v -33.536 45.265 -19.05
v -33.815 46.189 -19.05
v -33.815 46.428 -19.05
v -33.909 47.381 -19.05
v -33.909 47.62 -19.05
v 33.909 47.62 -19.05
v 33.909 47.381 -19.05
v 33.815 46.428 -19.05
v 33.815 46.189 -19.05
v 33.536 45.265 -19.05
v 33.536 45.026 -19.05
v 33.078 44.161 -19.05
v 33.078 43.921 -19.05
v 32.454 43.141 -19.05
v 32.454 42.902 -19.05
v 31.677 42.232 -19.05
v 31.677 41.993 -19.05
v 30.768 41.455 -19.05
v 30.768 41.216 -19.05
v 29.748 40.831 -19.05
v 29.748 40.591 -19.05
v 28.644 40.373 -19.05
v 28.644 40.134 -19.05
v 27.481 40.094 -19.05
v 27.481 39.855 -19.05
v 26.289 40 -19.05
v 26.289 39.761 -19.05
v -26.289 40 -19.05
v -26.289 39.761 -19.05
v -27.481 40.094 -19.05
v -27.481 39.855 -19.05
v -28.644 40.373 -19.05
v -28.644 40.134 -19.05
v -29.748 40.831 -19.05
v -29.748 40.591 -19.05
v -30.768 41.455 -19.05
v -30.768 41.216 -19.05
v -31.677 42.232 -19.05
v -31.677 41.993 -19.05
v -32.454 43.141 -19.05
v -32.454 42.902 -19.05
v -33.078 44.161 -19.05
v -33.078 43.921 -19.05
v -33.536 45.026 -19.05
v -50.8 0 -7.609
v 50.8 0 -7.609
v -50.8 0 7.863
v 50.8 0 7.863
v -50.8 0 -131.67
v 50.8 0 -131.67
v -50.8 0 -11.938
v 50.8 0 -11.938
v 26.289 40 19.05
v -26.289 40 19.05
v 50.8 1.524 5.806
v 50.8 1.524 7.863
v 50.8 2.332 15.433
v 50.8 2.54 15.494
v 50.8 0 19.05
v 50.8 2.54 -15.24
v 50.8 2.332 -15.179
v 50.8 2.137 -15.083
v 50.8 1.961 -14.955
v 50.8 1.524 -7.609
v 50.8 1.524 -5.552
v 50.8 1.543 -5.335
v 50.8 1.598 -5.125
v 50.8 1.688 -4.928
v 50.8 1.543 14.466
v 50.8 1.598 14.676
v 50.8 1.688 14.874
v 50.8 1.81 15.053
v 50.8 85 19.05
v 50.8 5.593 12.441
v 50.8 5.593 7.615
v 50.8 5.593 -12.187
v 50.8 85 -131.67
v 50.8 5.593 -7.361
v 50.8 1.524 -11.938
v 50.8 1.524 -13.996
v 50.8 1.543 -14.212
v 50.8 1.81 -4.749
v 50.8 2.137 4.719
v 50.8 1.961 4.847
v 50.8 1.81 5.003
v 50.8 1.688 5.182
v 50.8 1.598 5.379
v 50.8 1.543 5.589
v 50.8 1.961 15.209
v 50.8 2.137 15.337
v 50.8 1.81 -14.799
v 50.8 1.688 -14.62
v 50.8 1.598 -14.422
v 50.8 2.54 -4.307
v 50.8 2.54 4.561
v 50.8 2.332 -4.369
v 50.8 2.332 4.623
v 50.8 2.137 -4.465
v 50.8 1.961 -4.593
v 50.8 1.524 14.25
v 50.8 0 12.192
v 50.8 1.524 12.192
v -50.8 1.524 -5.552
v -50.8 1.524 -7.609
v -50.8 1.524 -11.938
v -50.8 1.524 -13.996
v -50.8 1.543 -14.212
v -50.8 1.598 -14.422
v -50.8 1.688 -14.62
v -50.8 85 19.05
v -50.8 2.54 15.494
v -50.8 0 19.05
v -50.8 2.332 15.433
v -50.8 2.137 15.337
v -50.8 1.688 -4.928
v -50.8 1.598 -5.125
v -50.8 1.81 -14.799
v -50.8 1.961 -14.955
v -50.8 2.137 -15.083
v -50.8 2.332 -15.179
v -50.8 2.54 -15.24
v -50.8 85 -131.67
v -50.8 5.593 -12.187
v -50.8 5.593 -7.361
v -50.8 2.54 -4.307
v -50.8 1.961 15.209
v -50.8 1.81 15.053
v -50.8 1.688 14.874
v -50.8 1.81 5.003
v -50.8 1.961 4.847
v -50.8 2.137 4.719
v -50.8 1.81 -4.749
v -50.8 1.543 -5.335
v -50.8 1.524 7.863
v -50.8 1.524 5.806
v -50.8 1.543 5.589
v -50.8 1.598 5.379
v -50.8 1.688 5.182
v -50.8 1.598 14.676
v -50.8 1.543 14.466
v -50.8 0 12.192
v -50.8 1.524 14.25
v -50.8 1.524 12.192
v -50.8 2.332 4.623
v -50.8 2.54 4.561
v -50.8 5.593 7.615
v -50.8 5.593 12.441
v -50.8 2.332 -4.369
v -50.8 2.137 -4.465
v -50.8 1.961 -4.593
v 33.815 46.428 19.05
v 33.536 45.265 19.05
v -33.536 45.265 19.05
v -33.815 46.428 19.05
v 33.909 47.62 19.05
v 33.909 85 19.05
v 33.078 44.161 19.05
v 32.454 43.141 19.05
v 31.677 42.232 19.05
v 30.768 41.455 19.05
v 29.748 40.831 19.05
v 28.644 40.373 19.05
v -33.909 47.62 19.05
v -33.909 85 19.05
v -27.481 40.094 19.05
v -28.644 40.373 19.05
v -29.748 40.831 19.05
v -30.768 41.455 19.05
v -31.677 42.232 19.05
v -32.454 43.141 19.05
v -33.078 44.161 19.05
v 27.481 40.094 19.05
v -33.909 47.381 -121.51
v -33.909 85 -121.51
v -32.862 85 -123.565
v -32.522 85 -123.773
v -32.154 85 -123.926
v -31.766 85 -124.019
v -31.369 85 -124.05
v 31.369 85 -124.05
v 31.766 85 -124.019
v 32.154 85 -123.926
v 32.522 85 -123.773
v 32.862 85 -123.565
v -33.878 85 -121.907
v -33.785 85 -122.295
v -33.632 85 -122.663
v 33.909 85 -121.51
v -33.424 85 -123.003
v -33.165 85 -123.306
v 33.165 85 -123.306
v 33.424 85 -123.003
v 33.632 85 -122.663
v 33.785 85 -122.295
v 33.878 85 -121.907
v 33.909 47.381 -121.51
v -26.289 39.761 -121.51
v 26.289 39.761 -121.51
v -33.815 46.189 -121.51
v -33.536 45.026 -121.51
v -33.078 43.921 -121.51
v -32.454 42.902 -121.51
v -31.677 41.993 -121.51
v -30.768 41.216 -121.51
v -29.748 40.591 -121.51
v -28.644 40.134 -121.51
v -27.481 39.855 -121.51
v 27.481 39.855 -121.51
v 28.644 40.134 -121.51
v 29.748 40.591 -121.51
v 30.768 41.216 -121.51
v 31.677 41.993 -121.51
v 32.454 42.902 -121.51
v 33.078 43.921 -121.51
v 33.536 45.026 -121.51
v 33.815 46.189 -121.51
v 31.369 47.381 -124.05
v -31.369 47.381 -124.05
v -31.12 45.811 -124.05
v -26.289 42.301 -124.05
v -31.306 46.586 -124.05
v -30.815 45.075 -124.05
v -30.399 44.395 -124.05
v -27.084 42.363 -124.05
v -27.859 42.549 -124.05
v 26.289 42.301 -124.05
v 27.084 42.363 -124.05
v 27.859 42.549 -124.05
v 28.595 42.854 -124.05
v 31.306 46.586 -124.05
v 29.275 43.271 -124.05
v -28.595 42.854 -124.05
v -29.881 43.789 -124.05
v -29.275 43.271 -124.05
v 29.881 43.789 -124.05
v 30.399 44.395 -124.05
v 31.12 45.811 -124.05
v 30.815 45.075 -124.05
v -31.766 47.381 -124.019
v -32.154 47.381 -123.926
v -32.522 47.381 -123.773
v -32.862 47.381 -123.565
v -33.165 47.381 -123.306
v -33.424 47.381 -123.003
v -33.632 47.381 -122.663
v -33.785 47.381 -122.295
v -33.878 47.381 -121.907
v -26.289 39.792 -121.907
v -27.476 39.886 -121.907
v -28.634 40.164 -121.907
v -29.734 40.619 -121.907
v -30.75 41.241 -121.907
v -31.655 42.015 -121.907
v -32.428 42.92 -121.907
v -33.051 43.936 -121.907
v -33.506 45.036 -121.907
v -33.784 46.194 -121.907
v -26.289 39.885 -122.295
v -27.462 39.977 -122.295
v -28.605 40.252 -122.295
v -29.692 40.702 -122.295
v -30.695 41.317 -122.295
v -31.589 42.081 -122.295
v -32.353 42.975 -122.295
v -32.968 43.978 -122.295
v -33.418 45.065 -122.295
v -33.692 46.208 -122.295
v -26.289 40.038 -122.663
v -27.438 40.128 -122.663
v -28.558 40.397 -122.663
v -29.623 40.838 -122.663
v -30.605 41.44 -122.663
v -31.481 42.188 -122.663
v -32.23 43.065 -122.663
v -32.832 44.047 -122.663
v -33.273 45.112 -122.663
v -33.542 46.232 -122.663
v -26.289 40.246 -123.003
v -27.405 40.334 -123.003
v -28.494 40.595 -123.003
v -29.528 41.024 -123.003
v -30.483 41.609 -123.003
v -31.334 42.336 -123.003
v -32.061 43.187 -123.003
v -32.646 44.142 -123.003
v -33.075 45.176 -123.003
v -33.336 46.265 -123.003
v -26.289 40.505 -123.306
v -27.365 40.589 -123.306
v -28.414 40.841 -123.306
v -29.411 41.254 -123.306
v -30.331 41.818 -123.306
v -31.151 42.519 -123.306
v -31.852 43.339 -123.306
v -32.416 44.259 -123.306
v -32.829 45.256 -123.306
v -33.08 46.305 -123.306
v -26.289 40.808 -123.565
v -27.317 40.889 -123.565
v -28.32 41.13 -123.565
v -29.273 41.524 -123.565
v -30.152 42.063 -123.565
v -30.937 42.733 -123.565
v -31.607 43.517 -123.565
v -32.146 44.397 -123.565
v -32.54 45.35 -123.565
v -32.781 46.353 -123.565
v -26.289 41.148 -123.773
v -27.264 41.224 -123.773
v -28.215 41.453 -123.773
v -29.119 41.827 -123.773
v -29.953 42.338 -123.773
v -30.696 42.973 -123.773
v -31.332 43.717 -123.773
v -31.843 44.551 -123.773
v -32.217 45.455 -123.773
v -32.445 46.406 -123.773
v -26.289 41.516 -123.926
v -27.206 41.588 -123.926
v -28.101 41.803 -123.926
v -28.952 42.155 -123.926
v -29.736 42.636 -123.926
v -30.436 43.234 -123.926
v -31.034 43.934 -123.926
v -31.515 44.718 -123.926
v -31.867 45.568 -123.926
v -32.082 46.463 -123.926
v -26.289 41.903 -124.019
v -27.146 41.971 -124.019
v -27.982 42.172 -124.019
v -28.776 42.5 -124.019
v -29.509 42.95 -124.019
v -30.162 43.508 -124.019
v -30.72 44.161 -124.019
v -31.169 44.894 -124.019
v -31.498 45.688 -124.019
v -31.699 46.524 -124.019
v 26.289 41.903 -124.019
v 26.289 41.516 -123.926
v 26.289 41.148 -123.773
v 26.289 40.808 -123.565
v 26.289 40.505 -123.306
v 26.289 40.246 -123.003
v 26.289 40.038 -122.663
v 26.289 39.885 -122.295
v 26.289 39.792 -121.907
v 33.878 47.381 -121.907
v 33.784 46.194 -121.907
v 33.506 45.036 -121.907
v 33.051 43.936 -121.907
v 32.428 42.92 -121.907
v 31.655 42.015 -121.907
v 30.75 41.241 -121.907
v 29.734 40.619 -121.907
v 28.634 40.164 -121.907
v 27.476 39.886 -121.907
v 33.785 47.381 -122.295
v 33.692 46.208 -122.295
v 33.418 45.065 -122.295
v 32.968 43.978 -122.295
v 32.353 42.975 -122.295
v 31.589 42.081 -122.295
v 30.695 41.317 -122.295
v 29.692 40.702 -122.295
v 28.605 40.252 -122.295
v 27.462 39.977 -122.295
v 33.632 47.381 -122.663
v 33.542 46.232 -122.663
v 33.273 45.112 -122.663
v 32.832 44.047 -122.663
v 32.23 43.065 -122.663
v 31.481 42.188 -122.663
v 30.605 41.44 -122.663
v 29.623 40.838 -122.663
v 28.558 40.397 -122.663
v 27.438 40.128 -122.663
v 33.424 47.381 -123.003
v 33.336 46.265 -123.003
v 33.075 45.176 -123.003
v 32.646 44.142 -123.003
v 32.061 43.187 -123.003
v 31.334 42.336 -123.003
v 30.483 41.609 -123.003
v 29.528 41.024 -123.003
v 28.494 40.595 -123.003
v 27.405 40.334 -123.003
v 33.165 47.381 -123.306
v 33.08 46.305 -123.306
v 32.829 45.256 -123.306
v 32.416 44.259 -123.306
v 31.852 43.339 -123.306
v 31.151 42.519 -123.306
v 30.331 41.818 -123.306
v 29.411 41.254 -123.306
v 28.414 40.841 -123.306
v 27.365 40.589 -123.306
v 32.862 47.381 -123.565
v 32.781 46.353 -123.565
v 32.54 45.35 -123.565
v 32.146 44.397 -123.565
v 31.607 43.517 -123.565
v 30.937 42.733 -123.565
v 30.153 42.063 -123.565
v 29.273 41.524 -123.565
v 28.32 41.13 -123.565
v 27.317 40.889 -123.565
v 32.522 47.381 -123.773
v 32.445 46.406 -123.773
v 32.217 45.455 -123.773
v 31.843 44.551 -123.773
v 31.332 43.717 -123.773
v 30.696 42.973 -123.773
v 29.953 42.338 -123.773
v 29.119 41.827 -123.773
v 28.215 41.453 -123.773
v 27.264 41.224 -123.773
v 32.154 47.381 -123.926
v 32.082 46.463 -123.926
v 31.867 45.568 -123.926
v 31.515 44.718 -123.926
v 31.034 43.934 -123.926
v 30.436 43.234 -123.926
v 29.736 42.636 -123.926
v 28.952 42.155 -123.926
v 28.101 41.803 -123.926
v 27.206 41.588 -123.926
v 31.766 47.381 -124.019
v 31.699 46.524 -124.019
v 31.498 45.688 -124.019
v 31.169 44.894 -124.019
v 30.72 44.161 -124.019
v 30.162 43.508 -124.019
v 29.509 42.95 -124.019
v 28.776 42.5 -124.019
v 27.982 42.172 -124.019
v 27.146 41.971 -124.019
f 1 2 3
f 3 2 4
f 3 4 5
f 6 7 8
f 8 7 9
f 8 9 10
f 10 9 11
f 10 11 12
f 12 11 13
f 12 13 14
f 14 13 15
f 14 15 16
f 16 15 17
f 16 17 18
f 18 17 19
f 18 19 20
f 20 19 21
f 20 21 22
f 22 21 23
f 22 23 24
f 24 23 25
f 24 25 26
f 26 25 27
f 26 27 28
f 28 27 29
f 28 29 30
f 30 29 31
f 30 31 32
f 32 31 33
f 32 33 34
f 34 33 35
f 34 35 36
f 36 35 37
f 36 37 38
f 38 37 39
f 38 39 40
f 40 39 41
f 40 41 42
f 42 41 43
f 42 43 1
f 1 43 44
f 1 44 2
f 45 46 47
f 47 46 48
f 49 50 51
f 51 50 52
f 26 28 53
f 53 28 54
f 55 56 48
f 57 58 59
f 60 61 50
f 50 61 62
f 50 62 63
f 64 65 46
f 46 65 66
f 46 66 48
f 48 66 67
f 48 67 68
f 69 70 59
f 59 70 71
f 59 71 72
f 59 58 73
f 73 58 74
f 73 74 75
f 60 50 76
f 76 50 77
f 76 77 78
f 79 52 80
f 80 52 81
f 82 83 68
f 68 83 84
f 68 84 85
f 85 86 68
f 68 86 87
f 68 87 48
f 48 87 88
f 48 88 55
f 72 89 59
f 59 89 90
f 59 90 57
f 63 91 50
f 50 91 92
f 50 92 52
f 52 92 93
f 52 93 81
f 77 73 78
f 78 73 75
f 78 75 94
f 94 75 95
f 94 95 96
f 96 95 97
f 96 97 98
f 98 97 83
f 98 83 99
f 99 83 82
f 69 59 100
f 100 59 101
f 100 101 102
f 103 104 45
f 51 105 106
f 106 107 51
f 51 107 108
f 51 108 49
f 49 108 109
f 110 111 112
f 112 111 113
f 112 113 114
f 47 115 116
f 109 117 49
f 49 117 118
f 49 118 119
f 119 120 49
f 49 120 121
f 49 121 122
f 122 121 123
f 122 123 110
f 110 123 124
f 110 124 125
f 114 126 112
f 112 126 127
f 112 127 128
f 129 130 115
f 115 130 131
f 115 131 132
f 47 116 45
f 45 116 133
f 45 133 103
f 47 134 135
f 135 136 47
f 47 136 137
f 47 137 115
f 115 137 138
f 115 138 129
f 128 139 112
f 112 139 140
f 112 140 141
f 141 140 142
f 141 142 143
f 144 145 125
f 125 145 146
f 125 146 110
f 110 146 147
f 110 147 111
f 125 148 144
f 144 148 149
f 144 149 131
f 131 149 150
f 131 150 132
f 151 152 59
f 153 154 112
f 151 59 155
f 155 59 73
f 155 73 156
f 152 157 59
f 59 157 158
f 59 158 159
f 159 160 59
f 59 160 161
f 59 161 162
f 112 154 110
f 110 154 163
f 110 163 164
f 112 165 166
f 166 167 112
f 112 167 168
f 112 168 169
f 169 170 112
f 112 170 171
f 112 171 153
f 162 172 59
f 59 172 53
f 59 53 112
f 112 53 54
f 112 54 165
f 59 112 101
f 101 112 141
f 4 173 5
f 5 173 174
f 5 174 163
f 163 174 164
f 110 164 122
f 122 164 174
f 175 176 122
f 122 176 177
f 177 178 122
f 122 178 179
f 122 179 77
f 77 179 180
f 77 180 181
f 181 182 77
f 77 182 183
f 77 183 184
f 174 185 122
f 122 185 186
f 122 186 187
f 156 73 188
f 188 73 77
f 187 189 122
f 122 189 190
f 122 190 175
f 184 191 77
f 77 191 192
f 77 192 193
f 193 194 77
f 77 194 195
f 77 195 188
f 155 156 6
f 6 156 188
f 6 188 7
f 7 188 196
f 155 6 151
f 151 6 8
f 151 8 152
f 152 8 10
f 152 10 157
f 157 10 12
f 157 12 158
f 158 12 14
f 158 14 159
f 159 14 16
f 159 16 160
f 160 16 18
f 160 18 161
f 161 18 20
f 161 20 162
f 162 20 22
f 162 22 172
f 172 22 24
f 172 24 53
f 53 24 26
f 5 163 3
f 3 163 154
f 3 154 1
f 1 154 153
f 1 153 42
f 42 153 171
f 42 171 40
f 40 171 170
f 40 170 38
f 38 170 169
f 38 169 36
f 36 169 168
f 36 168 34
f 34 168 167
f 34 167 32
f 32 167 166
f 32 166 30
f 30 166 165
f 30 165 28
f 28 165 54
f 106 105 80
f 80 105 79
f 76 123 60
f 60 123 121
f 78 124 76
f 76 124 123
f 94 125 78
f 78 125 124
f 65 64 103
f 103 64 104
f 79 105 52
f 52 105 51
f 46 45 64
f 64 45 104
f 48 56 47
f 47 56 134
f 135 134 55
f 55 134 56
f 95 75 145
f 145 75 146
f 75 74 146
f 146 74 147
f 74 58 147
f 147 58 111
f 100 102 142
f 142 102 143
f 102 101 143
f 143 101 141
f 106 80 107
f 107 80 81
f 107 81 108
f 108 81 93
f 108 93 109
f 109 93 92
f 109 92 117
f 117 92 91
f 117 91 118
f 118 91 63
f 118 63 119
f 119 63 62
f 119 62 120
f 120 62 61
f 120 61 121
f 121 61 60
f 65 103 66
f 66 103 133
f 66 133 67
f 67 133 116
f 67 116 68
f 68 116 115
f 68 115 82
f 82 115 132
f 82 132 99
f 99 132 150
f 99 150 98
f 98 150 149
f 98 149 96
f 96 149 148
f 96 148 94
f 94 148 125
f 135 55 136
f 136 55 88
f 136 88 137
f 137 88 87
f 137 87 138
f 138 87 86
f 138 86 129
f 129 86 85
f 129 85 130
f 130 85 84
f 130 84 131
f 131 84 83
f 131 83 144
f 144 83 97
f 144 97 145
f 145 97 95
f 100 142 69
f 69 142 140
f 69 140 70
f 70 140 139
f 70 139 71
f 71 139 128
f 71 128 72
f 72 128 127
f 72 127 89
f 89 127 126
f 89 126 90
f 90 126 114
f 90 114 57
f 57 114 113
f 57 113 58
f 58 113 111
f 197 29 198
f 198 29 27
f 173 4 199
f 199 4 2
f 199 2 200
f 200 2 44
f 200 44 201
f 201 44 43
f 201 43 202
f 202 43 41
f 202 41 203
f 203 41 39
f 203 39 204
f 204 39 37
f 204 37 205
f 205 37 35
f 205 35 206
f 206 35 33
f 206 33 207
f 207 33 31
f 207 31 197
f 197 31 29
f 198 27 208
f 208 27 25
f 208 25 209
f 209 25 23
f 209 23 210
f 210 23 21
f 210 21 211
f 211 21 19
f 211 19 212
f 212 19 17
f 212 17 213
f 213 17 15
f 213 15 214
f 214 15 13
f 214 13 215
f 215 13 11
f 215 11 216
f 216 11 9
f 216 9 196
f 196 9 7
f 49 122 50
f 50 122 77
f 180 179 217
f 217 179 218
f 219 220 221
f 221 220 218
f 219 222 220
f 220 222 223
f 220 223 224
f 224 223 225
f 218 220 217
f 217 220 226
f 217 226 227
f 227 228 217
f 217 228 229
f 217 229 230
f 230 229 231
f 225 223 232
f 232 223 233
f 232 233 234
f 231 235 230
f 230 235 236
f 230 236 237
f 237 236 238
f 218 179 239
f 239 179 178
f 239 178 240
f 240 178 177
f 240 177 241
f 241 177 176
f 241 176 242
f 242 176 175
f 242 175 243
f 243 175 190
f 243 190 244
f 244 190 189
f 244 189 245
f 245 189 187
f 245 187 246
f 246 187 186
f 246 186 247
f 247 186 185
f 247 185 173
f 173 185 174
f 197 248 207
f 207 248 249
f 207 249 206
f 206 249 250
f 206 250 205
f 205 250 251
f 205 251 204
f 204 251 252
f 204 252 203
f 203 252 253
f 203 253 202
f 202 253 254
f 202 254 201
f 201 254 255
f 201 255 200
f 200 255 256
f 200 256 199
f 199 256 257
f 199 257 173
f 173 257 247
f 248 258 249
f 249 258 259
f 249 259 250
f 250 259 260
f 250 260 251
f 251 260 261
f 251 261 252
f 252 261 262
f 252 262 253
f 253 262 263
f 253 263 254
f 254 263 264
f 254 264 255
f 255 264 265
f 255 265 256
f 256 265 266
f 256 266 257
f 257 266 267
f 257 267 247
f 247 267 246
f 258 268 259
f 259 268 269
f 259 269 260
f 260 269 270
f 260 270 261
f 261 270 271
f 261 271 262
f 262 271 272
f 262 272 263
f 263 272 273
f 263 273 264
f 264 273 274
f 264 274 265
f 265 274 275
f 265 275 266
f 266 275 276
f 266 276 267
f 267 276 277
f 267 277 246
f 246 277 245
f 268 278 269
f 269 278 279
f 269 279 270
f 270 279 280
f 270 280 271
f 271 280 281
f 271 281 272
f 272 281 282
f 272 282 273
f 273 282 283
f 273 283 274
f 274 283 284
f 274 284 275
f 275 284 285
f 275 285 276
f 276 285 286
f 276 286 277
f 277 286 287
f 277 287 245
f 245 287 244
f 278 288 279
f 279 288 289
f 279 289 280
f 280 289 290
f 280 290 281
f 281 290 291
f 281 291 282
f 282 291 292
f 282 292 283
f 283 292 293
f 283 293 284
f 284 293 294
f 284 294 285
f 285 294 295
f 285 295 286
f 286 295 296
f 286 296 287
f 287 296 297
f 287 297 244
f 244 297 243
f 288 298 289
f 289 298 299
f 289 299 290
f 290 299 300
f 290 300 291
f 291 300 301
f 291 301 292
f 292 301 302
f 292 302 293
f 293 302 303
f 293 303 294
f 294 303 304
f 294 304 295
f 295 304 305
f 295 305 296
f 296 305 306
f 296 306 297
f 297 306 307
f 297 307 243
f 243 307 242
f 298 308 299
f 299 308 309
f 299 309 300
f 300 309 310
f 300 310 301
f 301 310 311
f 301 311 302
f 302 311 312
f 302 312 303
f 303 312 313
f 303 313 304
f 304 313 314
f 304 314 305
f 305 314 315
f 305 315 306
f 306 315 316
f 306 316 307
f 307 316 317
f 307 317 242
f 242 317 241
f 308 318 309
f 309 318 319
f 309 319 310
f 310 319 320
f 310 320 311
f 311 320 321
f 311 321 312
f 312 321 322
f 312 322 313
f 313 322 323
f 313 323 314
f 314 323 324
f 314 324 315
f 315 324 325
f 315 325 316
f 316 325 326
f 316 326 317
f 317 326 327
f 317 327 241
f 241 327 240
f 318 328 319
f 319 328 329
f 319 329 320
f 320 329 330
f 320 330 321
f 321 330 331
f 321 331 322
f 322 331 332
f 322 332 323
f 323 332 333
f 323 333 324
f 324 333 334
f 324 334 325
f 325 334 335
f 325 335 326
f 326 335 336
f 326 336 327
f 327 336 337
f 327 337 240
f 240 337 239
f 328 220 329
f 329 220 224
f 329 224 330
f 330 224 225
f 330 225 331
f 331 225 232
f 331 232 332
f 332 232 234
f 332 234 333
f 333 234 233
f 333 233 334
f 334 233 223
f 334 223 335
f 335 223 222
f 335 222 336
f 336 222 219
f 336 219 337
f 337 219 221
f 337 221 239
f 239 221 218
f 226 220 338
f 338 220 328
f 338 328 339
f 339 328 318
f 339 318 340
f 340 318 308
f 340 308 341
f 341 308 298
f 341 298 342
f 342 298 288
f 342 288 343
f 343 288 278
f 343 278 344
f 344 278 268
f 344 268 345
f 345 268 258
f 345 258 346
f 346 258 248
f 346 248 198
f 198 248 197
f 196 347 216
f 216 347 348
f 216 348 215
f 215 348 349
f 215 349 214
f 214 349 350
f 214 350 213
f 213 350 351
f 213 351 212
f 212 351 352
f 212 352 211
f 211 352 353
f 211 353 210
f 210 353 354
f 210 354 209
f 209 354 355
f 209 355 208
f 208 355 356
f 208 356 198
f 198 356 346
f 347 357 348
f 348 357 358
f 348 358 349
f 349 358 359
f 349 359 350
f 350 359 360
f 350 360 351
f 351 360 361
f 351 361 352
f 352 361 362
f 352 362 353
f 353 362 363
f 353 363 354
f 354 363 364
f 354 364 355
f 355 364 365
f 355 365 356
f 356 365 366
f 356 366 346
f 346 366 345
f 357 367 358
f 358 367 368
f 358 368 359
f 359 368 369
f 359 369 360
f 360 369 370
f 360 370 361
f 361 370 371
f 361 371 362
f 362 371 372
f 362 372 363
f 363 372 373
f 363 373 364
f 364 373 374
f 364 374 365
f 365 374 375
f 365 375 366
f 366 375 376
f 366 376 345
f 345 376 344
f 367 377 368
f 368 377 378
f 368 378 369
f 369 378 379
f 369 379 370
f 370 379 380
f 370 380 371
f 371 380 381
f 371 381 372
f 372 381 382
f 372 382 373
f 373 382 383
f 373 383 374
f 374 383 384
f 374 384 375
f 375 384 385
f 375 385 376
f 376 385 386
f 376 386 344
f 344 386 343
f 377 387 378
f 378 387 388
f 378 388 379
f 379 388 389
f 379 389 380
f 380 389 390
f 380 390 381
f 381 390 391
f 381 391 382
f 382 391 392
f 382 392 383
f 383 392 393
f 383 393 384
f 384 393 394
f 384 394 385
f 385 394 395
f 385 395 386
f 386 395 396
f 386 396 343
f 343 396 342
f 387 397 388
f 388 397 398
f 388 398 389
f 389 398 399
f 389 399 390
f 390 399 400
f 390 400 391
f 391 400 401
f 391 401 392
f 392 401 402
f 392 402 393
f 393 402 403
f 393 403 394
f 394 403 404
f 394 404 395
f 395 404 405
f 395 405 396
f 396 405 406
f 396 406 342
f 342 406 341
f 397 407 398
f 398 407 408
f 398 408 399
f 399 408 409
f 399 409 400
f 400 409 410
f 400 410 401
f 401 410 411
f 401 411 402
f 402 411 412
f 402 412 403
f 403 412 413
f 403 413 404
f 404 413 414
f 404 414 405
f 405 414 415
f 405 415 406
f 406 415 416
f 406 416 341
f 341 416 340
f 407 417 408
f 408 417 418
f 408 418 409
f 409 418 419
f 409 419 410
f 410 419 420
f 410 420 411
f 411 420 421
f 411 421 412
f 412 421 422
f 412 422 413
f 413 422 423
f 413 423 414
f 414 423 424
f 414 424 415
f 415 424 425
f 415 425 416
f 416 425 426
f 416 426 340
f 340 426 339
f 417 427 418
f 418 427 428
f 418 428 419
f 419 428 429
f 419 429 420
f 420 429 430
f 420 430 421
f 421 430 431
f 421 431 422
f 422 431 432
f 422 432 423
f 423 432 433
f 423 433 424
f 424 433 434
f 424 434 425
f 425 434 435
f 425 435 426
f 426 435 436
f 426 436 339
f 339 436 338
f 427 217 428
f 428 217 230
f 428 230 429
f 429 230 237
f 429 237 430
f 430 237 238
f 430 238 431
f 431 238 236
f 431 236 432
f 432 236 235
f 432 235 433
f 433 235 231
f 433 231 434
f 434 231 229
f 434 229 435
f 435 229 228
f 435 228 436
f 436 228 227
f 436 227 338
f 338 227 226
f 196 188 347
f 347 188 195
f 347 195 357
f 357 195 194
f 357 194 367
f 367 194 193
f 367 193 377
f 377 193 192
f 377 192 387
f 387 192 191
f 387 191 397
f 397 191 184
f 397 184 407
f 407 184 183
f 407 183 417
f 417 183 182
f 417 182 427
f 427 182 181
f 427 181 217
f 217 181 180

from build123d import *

# Parameters (mm, degrees)
SKETCH1_W               = 101.6
SKETCH1_H               = 38.1
BOSS_EXTRUDE1_DEPTH     = 40
SKETCH2_W               = 16.891
SKETCH2_H               = 38.1
BOSS_EXTRUDE2_DEPTH     = 45
FILLET1_R               = 7.62
CUT_EXTRUDE1_DEPTH      = 134.829976089
CUT_EXTRUDE1_DEPTH_BACK = 134.829976089
CUT_EXTRUDE2_DEPTH      = 134.829976089
CUT_EXTRUDE2_DEPTH_BACK = 134.829976089
FILLET2_R               = 1.27
BOSS_EXTRUDE3_DEPTH     = 105
FILLET3_R               = 7.62
SKETCH9_W               = 101.6
SKETCH9_H               = 85
BOSS_EXTRUDE4_DEPTH     = 7.62
FILLET4_R               = 2.54


with BuildPart() as part:
    # Sketch1 → Boss-Extrude1 (new body)
    with BuildSketch(Plane(origin=(0, 0, 0), x_dir=(1, 0, 0), z_dir=(0, 1, 0))):
        Rectangle(SKETCH1_W, SKETCH1_H)
    extrude(amount=BOSS_EXTRUDE1_DEPTH)

    # Sketch2 → Boss-Extrude2 (add)
    with BuildSketch(Plane(origin=(0, 40, 0), x_dir=(1, 0, 0), z_dir=(0, 1, 0))):
        with Locations((-42.3545, 0)):
            Rectangle(SKETCH2_W, SKETCH2_H)
        with Locations((42.3545, 0)):
            Rectangle(SKETCH2_W, SKETCH2_H)
    extrude(amount=BOSS_EXTRUDE2_DEPTH)

    # Fillet1
    fillet1_edges = [part.edges().sort_by_distance(p)[0] for p in [
        (-33.909, 40, 0),
        (33.909, 40, 0),
    ]]
    fillet(fillet1_edges, radius=FILLET1_R)

    # Sketch6 → Cut-Extrude1 (cut, two sides: drawn at the far end of the back side and taken through both)
    with BuildSketch(Plane.ZY.offset(50.8).offset(-CUT_EXTRUDE1_DEPTH_BACK)):
        Polygon((-11.938, 0), (-11.938, 1.524), (-15.24, 1.524), (-15.24, 2.54), (-12.186712919, 5.593287081), (-7.360712919, 5.593287081), (-4.307425838, 2.54), (-4.307425838, 1.524), (-7.609425838, 1.524), (-7.609425838, 0), align=None)
    extrude(amount=CUT_EXTRUDE1_DEPTH + CUT_EXTRUDE1_DEPTH_BACK, mode=Mode.SUBTRACT)

    # Sketch5 → Cut-Extrude2 (cut, two sides: drawn at the far end of the back side and taken through both)
    with BuildSketch(Plane.ZY.offset(50.8).offset(-CUT_EXTRUDE2_DEPTH_BACK)):
        Polygon((7.863425838, 0), (7.863425838, 1.524), (4.561425838, 1.524), (4.561425838, 2.54), (7.614712919, 5.593287081), (12.440712919, 5.593287081), (15.494, 2.54), (15.494, 1.524), (12.192, 1.524), (12.192, 0), align=None)
    extrude(amount=CUT_EXTRUDE2_DEPTH + CUT_EXTRUDE2_DEPTH_BACK, mode=Mode.SUBTRACT)

    # Fillet2
    # the kernel refuses this fillet: 1.27 mm, written as the material it adds along each edge
    with BuildSketch(Plane(origin=(-50.8, 1.524, -15.24), x_dir=(0, 0, 1), z_dir=(1, 0, 0)), Plane(origin=(-50.8, 1.524, 4.561425838), x_dir=(0, 0, 1), z_dir=(1, 0, 0))) as fillet2_piece_1:
        with BuildLine():
            CenterArc((1.244340789, -1.27), FILLET2_R, 90, 78.463040967)
            Line((0, -1.016), (-0.024886816, -1.01092))
            ThreePointArc((-0.024886816, -1.01092), (-0.0254, -0.508), (-0.0254, 0))
            Line((-0.0254, 0), (0, 0.0254))
            Line((0, 0.0254), (1.244340789, 0.0254))
            Line((1.244340789, 0.0254), (1.244340789, 0))
        make_face()
    extrude(amount=101.6)
    with BuildSketch(Plane(origin=(-50.8, 1.524, -4.307425838), x_dir=(0, 1.0, -1.5744186357080854e-12), z_dir=(1, 0, 0)), Plane(origin=(-50.8, 1.524, 15.494), x_dir=(0, 1.0, -1.561305765338501e-12), z_dir=(1, 0, 0))) as fillet2_piece_2:
        with BuildLine():
            CenterArc((1.27, -1.244340789), FILLET2_R, 101.536959033, 78.463040967)
            Line((0, -1.244340789), (-0.0254, -1.244340789))
            Line((-0.0254, -1.244340789), (-0.0254, 0))
            Line((-0.0254, 0), (0, 0.0254))
            ThreePointArc((0, 0.0254), (0.508, 0.0254), (1.01092, 0.024886816))
            Line((1.01092, 0.024886816), (1.016, 0))
        make_face()
    extrude(amount=101.6)

    # Sketch8 → Boss-Extrude3 (add)
    with BuildSketch(Plane(origin=(0, 0, -19.05), x_dir=(-1, 0, 0), z_dir=(0, 0, -1))):
        Polygon((-33.909, 39.760810351), (-50.8, 39.760810351), (-50.8, 0), (50.8, 0), (50.8, 39.760810351), (33.909, 39.760810351), align=None)
        Polygon((-50.8, 85), (-50.8, 39.760810351), (-33.909, 39.760810351), (-33.909, 47.62), (-33.909, 85), align=None)
        Polygon((33.909, 47.62), (33.909, 39.760810351), (50.8, 39.760810351), (50.8, 85), (33.909, 85), align=None)
    extrude(amount=BOSS_EXTRUDE3_DEPTH)

    # Fillet3
    fillet3_edges = [part.edges().sort_by_distance(p)[0] for p in [
        (-33.909, 39.760810351, -71.55),
        (33.909, 39.760810351, -71.55),
    ]]
    fillet(fillet3_edges, radius=FILLET3_R)

    # Sketch9 → Boss-Extrude4 (add)
    with BuildSketch(Plane(origin=(0, 0, -124.05), x_dir=(-1, 0, 0), z_dir=(0, 0, -1))):
        with Locations((0, 42.5)):
            Rectangle(SKETCH9_W, SKETCH9_H)
    extrude(amount=BOSS_EXTRUDE4_DEPTH)

    # Fillet4
    fillet4_edges = [part.edges().sort_by_distance(p)[0] for p in [
        (33.909, 66.190405175, -124.05),
        (-33.909, 66.190405175, -124.05),
        (0, 39.760810351, -124.05),
        (-31.677153673, 41.992656678, -124.05),
        (31.677153673, 41.992656678, -124.05),
    ]]
    fillet(fillet4_edges, radius=FILLET4_R)


solid = part.part
